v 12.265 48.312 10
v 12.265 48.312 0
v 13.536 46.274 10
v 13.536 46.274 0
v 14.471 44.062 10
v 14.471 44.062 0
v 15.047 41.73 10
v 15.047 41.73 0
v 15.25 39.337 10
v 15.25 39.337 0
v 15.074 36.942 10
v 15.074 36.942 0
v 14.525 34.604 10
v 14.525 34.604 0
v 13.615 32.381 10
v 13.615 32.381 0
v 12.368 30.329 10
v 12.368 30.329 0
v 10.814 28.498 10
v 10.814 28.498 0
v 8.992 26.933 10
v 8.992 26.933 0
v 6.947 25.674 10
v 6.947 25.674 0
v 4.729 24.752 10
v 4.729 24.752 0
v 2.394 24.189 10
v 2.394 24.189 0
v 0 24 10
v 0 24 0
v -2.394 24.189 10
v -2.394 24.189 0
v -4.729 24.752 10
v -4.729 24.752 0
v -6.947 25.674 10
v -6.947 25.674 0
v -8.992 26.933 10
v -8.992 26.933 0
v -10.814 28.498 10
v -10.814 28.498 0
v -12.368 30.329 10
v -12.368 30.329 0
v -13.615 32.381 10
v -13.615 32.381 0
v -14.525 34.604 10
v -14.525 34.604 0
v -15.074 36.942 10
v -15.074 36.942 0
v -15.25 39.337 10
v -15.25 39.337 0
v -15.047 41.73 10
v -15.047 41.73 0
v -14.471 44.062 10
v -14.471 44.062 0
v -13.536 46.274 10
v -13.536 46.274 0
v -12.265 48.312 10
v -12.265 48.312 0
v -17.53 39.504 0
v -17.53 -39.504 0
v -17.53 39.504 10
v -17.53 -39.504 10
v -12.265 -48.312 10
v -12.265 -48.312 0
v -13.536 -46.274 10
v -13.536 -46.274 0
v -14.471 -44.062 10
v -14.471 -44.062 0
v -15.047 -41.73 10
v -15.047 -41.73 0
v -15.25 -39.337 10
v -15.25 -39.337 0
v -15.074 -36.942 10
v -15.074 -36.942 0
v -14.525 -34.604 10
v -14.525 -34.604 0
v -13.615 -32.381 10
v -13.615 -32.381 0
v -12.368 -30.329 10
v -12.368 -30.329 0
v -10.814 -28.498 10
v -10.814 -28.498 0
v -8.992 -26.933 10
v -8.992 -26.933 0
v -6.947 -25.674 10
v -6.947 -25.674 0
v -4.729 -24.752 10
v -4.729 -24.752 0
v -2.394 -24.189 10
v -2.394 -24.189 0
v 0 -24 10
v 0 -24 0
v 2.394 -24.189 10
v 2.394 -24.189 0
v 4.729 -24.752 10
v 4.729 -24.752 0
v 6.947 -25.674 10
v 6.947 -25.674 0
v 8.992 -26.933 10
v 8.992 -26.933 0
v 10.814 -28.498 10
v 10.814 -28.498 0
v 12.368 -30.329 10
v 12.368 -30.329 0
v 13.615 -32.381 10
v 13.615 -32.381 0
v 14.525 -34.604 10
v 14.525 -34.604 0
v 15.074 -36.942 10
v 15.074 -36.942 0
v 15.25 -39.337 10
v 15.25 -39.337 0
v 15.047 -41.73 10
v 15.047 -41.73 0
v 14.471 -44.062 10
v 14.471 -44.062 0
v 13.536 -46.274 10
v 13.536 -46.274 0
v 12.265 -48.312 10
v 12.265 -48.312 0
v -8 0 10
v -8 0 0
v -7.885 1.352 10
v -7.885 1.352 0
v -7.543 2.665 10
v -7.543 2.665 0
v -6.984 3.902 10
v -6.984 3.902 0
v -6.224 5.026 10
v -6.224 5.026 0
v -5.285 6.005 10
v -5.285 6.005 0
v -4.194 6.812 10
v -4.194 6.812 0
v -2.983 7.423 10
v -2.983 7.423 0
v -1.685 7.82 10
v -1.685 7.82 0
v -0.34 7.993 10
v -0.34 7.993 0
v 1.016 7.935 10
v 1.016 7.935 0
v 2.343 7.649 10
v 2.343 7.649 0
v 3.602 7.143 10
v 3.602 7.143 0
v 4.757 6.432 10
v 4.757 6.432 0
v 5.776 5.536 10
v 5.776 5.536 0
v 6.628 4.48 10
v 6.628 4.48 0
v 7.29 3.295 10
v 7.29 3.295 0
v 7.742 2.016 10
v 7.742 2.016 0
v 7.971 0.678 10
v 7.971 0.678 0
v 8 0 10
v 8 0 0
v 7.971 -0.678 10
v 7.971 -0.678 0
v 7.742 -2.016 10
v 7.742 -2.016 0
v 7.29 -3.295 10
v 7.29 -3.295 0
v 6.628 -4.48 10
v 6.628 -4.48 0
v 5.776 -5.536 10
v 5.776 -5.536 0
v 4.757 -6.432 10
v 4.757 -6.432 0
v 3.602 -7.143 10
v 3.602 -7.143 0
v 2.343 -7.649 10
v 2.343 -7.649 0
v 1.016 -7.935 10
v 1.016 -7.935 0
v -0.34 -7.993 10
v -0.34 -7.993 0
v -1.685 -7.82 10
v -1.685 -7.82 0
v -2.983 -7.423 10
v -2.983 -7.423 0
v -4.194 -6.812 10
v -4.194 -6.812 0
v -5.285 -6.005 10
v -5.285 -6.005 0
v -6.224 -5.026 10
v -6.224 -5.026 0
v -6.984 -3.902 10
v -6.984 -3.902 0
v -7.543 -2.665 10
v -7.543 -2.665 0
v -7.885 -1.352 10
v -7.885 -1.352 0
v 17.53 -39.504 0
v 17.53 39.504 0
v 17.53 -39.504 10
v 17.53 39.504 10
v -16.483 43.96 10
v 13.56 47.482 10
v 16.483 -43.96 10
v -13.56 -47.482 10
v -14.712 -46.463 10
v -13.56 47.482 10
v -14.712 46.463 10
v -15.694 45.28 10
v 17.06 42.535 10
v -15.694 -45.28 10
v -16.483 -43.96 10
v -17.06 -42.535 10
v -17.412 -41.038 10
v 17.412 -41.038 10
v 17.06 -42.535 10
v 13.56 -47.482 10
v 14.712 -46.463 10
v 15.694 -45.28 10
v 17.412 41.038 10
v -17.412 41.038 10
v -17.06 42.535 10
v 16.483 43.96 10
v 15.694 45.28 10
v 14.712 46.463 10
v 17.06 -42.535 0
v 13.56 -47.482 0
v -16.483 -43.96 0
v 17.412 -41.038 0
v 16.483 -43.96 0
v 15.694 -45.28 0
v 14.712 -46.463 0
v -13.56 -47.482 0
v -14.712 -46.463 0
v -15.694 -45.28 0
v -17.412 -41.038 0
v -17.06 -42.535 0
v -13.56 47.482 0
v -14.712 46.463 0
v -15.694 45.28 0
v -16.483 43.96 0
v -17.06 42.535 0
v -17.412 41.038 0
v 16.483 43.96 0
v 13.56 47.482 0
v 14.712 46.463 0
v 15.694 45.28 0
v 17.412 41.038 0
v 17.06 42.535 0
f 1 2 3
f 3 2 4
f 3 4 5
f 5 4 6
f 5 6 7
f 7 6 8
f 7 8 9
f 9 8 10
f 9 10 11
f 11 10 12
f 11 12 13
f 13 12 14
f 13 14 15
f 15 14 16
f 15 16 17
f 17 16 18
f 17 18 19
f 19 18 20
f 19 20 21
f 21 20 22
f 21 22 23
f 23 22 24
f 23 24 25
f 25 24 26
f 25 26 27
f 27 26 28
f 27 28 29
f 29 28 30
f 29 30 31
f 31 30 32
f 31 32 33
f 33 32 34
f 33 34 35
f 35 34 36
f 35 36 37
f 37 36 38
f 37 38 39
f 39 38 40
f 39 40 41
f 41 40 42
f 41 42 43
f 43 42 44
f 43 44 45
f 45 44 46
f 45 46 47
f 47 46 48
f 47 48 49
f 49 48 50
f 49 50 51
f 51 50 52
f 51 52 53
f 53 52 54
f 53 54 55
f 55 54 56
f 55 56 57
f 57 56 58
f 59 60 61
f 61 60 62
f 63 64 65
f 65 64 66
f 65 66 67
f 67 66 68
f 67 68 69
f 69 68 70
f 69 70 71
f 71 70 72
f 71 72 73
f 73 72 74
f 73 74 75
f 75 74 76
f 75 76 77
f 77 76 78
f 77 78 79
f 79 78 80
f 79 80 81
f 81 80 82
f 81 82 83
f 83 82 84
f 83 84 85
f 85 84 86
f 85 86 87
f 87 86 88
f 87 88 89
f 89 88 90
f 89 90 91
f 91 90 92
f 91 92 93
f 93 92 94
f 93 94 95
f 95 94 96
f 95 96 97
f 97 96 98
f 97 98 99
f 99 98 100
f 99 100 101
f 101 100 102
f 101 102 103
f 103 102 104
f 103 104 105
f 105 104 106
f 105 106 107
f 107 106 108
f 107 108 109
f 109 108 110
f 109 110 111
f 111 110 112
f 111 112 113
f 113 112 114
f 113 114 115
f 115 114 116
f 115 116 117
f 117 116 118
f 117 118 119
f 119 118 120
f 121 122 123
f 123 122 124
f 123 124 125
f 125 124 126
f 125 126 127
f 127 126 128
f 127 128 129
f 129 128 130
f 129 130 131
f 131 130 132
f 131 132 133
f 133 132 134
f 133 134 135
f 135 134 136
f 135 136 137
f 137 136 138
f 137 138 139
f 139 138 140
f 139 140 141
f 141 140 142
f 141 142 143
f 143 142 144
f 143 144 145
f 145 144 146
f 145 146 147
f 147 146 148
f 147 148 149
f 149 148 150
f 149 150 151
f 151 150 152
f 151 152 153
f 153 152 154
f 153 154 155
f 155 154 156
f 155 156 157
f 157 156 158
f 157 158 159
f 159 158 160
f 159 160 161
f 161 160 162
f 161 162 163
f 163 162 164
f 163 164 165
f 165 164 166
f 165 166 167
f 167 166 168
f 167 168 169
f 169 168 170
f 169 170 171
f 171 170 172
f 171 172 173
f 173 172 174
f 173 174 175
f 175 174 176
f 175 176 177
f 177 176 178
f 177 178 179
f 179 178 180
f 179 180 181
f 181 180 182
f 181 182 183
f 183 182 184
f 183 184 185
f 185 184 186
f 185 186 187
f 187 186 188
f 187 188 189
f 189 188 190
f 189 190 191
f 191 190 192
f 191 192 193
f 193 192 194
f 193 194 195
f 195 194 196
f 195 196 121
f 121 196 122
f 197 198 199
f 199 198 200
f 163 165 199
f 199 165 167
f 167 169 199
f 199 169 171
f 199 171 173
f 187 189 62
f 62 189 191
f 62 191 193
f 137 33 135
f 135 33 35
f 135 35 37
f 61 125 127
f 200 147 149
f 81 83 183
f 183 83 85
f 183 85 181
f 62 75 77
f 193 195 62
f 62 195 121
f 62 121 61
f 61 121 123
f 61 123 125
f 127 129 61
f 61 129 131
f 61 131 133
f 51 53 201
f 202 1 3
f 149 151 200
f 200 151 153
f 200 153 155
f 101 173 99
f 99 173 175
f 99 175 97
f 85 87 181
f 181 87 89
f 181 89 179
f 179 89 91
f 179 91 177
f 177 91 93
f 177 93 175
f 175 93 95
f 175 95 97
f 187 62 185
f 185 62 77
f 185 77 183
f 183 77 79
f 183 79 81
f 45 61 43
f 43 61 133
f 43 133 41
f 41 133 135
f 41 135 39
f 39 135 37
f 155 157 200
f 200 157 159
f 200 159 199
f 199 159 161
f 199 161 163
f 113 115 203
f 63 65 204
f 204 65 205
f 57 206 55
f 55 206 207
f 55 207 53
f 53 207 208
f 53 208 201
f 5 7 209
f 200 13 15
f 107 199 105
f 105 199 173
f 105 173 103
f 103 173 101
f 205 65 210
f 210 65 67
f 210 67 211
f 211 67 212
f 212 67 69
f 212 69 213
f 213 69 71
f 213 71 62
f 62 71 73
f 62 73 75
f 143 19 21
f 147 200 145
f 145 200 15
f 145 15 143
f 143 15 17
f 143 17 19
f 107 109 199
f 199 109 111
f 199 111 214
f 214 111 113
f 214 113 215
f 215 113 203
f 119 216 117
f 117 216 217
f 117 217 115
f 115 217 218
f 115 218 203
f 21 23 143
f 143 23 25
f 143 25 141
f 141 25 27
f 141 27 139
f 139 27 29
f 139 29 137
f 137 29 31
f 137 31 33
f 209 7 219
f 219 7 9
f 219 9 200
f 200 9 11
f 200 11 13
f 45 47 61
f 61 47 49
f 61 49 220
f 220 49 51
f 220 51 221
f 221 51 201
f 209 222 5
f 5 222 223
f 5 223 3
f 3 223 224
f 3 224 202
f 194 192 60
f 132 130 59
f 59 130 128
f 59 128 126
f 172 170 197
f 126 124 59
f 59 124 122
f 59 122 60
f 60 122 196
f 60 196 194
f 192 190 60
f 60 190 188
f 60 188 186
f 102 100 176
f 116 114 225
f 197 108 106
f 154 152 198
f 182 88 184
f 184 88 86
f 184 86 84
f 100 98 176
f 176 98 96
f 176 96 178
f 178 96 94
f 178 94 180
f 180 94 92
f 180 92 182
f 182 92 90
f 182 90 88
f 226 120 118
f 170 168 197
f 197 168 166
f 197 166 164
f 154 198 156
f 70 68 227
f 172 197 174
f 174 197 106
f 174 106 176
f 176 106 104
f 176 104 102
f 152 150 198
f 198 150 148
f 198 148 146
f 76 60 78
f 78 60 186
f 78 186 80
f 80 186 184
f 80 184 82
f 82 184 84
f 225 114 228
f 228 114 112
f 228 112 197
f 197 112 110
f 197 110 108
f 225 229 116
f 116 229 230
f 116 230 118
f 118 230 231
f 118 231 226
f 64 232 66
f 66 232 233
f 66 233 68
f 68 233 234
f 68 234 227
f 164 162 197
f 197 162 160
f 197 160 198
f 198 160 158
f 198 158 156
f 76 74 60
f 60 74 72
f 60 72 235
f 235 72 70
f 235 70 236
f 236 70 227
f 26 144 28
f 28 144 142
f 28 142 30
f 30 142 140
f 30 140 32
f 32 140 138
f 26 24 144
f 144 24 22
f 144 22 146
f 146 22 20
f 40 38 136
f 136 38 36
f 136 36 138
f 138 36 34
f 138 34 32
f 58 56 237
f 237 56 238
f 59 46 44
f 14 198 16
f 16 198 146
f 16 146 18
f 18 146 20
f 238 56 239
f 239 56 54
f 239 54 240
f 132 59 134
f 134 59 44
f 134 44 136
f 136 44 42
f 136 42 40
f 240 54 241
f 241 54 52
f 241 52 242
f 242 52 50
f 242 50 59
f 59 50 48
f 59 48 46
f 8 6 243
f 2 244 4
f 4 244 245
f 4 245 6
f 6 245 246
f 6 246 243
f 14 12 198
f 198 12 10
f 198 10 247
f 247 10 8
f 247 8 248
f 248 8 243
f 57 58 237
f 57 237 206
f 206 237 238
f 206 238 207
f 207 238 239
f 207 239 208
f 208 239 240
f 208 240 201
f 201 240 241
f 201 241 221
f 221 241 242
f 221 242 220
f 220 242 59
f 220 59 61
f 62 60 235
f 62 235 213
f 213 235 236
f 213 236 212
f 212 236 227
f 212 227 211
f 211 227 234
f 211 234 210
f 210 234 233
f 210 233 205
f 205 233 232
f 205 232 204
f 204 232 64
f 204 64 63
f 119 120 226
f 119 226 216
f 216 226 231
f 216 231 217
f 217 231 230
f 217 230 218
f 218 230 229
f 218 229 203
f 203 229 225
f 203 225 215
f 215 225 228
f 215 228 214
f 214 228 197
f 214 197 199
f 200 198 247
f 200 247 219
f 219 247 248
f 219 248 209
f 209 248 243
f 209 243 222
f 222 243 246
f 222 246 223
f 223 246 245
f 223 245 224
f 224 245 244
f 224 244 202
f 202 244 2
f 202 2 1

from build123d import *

# Parameters (mm, degrees)
SKETCH1_R           = 8
BOSS_EXTRUDE1_DEPTH = 10
FILLET1_R           = 10


with BuildPart() as part:
    # Sketch1 → Boss-Extrude1 (new body)
    with BuildSketch(Plane(origin=(0, 0, 0), x_dir=(0, 1, 0), z_dir=(0, 0, 1))):
        with BuildLine():
            Line((48.312247408, -17.530203429), (48.312247408, -12.265323963))
            ThreePointArc((48.312247408, -12.265323963), (24, 0), (48.312247408, 12.265323963))
            Line((48.312247408, 12.265323963), (48.312247408, 17.530203429))
            Line((48.312247408, 17.530203429), (-48.312247408, 17.530203429))
            Line((-48.312247408, 17.530203429), (-48.312247408, 12.265323963))
            ThreePointArc((-48.312247408, 12.265323963), (-24, 0), (-48.312247408, -12.265323963))
            Line((-48.312247408, -12.265323963), (-48.312247408, -17.530203429))
            Line((-48.312247408, -17.530203429), (48.312247408, -17.530203429))
        make_face()
        with Locations(Location((0, 0, 0), (0, 0, 270))):
            Circle(SKETCH1_R, mode=Mode.SUBTRACT)
    extrude(amount=BOSS_EXTRUDE1_DEPTH)

    # Fillet1
    # the kernel refuses this fillet: 10 mm, written as the material it takes off along each edge
    with BuildSketch(Plane(origin=(-17.530203429, 48.312247408, -22.019683457), x_dir=(1, 0, 0), z_dir=(0, 0, 1)), Plane(origin=(17.530203429, -48.312247408, -22.019683457), x_dir=(-1, 0, 0), z_dir=(0, 0, 1))) as fillet1_piece_1:
        with BuildLine():
            CenterArc((10, -8.807873383), FILLET1_R, 118.262514111, 61.737485889)
            Line((0, -8.807873383), (-0.2, -8.807873383))
            Line((-0.2, -8.807873383), (-0.2, 0))
            Line((-0.2, 0), (0, 0.2))
            ThreePointArc((0, 0.2), (2.632439733, 0.2), (5.170177055, 0.176157468))
            Line((5.170177055, 0.176157468), (5.264879466, 0))
        make_face()
    extrude(amount=54.039366915, mode=Mode.SUBTRACT)
    with BuildSketch(Plane(origin=(-17.530203429, -48.312247408, -22.019683457), x_dir=(0, 1, 0), z_dir=(0, 0, 1)), Plane(origin=(17.530203429, 48.312247408, -22.019683457), x_dir=(0, -1, 0), z_dir=(0, 0, 1))) as fillet1_piece_2:
        with BuildLine():
            CenterArc((8.807873383, -10), FILLET1_R, 90, 61.737485889)
            Line((0, -5.264879466), (-0.176157468, -5.170177055))
            ThreePointArc((-0.176157468, -5.170177055), (-0.2, -2.632439733), (-0.2, 0))
            Line((-0.2, 0), (0, 0.2))
            Line((0, 0.2), (8.807873383, 0.2))
            Line((8.807873383, 0.2), (8.807873383, 0))
        make_face()
    extrude(amount=54.039366915, mode=Mode.SUBTRACT)


solid = part.part
